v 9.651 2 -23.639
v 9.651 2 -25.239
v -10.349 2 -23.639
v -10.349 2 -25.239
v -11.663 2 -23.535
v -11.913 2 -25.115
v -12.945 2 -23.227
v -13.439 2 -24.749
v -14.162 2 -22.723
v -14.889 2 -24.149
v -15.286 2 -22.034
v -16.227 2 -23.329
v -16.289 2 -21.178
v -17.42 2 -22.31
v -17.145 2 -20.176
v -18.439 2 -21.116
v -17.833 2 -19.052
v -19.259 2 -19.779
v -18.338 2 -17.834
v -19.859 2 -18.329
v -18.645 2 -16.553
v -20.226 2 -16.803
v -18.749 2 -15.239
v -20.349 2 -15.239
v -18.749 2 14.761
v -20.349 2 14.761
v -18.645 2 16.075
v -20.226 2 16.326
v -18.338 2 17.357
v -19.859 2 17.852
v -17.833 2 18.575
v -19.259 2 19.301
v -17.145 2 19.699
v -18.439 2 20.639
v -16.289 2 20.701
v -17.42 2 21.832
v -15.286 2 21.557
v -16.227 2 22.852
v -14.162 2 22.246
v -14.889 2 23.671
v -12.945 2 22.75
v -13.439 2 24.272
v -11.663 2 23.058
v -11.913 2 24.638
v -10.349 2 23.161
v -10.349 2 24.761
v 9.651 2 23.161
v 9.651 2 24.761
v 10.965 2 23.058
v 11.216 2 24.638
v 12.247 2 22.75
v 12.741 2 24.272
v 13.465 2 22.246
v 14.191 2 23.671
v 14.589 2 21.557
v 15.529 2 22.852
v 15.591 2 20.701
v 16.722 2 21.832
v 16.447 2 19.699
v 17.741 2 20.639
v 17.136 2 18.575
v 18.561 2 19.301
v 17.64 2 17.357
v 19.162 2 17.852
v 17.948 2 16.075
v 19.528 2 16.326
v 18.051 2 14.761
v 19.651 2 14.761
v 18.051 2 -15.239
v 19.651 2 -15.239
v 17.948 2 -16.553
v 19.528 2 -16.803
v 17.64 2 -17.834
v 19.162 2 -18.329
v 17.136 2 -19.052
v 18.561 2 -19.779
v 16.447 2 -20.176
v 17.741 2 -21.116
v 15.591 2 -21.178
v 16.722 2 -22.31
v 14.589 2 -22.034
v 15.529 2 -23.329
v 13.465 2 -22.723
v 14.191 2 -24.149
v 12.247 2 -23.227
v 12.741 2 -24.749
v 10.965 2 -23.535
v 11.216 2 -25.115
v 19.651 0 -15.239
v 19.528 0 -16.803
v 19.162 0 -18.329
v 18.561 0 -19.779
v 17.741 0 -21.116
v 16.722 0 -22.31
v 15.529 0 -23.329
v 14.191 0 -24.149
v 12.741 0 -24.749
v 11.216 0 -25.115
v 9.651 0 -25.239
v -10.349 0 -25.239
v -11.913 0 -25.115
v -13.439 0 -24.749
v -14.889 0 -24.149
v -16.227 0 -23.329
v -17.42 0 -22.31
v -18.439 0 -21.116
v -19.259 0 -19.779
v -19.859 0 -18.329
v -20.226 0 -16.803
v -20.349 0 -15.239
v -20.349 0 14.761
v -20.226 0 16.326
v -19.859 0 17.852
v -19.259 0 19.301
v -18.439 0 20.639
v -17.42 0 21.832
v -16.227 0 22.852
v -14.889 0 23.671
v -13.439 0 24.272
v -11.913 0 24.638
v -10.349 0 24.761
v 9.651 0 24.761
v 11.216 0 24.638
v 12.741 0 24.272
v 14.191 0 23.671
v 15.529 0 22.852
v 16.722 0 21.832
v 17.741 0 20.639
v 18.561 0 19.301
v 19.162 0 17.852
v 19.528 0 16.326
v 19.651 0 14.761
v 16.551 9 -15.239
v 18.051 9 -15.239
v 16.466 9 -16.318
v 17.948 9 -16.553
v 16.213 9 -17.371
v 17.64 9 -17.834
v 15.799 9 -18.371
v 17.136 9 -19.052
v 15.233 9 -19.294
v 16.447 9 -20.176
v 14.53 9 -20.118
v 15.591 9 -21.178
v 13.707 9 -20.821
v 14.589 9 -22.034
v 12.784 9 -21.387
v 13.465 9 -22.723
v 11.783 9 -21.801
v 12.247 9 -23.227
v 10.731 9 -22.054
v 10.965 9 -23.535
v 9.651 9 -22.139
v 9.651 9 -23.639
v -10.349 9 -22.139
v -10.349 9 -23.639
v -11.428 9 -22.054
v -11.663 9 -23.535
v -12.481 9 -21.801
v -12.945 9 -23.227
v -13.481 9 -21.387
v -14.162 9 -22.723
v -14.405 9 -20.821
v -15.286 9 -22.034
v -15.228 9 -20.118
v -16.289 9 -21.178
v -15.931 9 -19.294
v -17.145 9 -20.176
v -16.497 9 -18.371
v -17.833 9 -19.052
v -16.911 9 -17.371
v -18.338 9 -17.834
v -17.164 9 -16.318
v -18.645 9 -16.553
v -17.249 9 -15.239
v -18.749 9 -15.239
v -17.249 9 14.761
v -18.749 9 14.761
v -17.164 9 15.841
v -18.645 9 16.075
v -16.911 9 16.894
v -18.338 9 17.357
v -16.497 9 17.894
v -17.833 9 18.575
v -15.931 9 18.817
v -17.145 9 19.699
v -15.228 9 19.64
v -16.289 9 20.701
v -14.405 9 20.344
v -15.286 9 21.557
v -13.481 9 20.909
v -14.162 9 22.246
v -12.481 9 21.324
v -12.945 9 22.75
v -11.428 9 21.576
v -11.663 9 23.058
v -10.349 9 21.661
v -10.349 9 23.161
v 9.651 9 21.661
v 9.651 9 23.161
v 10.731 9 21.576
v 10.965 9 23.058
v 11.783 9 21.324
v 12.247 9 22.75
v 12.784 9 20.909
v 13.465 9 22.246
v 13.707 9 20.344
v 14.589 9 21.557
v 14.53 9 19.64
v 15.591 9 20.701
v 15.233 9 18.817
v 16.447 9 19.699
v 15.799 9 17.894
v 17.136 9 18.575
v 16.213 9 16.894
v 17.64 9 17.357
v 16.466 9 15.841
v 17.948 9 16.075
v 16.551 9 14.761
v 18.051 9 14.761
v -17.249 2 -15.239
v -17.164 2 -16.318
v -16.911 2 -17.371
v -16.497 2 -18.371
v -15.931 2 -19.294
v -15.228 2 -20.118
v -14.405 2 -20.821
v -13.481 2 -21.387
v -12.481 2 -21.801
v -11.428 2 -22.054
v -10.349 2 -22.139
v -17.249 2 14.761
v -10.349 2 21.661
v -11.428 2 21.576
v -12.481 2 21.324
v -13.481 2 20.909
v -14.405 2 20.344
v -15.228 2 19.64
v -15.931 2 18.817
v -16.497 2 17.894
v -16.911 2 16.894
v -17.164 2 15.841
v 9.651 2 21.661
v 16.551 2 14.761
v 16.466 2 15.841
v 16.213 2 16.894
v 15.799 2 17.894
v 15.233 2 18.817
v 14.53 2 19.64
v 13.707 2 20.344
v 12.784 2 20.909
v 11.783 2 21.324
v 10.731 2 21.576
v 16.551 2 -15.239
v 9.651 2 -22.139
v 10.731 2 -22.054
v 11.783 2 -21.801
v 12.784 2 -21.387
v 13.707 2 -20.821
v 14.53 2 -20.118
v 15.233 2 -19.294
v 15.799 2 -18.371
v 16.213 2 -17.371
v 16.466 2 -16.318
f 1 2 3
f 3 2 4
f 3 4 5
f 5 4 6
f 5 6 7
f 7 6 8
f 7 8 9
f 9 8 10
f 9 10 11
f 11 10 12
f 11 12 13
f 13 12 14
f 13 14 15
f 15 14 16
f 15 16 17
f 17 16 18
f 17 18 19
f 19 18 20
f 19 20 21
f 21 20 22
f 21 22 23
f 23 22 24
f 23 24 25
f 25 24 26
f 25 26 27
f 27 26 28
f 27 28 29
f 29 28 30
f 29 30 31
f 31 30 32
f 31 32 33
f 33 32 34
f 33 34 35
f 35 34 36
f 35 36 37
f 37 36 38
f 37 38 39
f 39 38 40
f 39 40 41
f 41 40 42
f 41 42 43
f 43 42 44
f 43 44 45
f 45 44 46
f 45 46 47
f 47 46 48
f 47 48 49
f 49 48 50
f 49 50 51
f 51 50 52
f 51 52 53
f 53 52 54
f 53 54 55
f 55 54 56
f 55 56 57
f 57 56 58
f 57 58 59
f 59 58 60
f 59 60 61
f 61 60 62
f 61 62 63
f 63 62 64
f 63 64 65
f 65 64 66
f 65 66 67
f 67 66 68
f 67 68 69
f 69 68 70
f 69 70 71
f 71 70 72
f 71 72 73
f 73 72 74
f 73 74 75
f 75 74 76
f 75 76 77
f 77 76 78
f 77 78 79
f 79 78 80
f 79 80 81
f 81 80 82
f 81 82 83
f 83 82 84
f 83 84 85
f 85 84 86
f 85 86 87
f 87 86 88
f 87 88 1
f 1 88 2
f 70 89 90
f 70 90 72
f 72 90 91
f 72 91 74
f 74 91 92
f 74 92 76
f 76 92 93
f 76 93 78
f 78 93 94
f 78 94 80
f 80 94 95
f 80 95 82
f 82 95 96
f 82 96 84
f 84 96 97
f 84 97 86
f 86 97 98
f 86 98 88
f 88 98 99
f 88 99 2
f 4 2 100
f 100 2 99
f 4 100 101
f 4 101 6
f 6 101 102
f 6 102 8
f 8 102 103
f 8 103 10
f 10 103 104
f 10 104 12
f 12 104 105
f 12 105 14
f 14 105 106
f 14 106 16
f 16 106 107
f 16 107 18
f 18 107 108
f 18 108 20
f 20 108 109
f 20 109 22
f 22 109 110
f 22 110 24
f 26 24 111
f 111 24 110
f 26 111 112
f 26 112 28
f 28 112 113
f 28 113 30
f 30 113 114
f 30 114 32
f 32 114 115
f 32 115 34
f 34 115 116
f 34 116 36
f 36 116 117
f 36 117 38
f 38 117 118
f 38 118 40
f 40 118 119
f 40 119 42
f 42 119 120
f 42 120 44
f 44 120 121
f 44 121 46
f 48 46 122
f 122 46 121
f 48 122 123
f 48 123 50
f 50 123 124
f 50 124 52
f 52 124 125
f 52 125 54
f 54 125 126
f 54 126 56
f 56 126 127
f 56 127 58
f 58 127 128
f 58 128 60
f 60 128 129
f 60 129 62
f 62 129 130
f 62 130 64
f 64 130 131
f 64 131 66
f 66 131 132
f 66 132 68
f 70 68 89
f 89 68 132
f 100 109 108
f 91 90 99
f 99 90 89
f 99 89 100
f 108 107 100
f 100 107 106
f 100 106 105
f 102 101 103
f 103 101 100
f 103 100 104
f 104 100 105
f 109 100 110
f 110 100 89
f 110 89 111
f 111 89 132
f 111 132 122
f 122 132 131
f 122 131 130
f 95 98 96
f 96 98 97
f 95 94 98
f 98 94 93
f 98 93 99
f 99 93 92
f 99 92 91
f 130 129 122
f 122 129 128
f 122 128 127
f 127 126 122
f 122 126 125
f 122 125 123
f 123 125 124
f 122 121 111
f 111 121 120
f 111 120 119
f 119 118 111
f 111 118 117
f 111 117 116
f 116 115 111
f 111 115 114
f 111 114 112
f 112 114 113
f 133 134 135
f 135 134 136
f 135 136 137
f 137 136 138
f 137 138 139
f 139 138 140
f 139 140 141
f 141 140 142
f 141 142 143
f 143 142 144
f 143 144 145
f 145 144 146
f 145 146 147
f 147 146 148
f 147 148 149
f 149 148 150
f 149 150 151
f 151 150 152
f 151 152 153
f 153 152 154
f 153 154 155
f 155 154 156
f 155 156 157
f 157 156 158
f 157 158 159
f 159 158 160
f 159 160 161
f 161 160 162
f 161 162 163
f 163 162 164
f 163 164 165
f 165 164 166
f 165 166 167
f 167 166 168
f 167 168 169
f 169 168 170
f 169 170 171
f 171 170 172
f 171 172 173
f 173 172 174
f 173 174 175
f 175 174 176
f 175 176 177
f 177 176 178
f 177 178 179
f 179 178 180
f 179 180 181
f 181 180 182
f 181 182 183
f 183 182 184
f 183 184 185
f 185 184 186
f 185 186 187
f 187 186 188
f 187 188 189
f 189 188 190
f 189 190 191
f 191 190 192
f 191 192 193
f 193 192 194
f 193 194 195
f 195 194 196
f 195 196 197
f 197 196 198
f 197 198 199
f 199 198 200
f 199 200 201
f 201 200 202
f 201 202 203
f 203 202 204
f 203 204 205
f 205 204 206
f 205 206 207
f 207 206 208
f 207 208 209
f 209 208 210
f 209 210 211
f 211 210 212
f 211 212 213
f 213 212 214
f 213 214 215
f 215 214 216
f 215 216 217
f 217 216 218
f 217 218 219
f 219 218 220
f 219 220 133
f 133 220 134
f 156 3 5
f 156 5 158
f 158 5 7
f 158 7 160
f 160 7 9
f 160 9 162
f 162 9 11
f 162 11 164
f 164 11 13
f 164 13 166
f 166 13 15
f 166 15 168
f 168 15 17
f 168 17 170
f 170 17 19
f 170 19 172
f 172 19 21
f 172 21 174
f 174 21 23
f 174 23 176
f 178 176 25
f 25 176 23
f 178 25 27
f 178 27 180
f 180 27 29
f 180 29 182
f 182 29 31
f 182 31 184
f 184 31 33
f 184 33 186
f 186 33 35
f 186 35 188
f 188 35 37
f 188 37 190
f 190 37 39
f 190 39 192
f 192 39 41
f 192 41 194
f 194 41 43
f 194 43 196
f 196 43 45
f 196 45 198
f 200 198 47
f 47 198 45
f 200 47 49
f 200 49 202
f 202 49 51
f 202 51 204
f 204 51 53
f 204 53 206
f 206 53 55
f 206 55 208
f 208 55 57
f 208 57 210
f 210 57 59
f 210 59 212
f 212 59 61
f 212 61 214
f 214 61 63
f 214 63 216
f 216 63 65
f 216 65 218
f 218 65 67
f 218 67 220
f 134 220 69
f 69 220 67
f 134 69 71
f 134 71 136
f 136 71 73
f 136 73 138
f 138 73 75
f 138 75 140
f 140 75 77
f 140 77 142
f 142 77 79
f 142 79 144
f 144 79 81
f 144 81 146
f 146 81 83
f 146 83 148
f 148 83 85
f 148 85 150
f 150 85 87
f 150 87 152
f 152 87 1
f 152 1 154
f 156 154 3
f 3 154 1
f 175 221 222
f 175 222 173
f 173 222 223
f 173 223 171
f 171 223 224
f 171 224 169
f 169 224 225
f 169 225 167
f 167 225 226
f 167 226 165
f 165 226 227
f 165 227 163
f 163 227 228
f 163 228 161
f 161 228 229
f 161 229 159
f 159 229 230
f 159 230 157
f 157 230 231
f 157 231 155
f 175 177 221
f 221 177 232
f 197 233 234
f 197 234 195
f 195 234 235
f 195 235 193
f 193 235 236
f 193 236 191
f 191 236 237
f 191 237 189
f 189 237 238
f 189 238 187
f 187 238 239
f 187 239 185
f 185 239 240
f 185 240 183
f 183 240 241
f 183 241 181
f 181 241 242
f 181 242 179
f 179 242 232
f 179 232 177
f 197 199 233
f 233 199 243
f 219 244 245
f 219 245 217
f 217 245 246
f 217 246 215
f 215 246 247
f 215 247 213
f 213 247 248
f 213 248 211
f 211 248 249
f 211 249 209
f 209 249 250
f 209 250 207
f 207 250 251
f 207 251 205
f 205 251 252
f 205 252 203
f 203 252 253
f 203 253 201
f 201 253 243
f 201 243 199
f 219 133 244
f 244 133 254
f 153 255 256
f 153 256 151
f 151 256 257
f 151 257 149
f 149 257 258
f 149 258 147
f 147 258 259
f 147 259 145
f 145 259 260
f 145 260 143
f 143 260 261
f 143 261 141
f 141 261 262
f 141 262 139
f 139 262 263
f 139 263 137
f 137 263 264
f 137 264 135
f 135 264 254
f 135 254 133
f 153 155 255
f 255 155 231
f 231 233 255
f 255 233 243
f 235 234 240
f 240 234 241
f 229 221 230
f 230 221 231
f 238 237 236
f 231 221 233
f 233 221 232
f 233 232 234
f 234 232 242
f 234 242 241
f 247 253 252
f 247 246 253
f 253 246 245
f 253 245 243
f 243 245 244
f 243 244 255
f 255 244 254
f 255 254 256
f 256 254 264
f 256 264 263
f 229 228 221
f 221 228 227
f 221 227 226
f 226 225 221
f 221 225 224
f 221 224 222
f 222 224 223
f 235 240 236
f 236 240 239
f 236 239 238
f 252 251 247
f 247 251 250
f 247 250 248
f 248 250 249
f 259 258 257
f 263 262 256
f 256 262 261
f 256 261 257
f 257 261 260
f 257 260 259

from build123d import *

# Parameters (mm, degrees)
RESSALTO_EXTRUS_O1_DEPTH = 2
RESSALTO_EXTRUS_O2_DEPTH = 7


with BuildPart() as part:
    # Esboço1 → Ressalto-extrusão1 (new body)
    with BuildSketch(Plane(origin=(0, 0, 0), x_dir=(1, 0, 0), z_dir=(0, 1, 0))):
        with BuildLine():
            Line((-10.348817595, -24.761398547), (9.651182405, -24.761398547))
            ThreePointArc((9.651182405, -24.761398547), (16.722250217, -21.832466359), (19.651182405, -14.761398547))
            Line((19.651182405, -14.761398547), (19.651182405, 15.238601453))
            ThreePointArc((19.651182405, 15.238601453), (16.722250217, 22.309669265), (9.651182405, 25.238601453))
            Line((9.651182405, 25.238601453), (-10.348817595, 25.238601453))
            ThreePointArc((-10.348817595, 25.238601453), (-17.419885407, 22.309669265), (-20.348817595, 15.238601453))
            Line((-20.348817595, 15.238601453), (-20.348817595, -14.761398547))
            ThreePointArc((-20.348817595, -14.761398547), (-17.419885407, -21.832466359), (-10.348817595, -24.761398547))
        make_face()
    extrude(amount=RESSALTO_EXTRUS_O1_DEPTH)

    # Esboço2 → Ressalto-extrusão2 (add)
    with BuildSketch(Plane(origin=(0, 2, 0), x_dir=(1, 0, 0), z_dir=(0, 1, 0))):
        with BuildLine():
            Line((-18.748817595, 15.238601453), (-18.748817595, -14.761398547))
            ThreePointArc((-18.748817595, -14.761398547), (-16.288514557, -20.701095509), (-10.348817595, -23.161398547))
            Line((-10.348817595, -23.161398547), (9.651182405, -23.161398547))
            ThreePointArc((9.651182405, -23.161398547), (15.590879367, -20.701095509), (18.051182405, -14.761398547))
            Line((18.051182405, -14.761398547), (18.051182405, 15.238601453))
            ThreePointArc((18.051182405, 15.238601453), (15.590879367, 21.178298415), (9.651182405, 23.638601453))
            Line((9.651182405, 23.638601453), (-10.348817595, 23.638601453))
            ThreePointArc((-10.348817595, 23.638601453), (-16.288514557, 21.178298415), (-18.748817595, 15.238601453))
        make_face()
        with BuildLine():
            Line((-17.248817595, 15.238601453), (-17.248817595, -14.761398547))
            ThreePointArc((-17.248817595, -14.761398547), (-15.227854385, -19.640435337), (-10.348817595, -21.661398547))
            Line((-10.348817595, -21.661398547), (9.651182405, -21.661398547))
            ThreePointArc((9.651182405, -21.661398547), (14.530219195, -19.640435337), (16.551182405, -14.761398547))
            Line((16.551182405, -14.761398547), (16.551182405, 15.238601453))
            ThreePointArc((16.551182405, 15.238601453), (14.530219195, 20.117638244), (9.651182405, 22.138601453))
            Line((9.651182405, 22.138601453), (-10.348817595, 22.138601453))
            ThreePointArc((-10.348817595, 22.138601453), (-15.227854385, 20.117638244), (-17.248817595, 15.238601453))
        make_face(mode=Mode.SUBTRACT)
    extrude(amount=RESSALTO_EXTRUS_O2_DEPTH)


solid = part.part
